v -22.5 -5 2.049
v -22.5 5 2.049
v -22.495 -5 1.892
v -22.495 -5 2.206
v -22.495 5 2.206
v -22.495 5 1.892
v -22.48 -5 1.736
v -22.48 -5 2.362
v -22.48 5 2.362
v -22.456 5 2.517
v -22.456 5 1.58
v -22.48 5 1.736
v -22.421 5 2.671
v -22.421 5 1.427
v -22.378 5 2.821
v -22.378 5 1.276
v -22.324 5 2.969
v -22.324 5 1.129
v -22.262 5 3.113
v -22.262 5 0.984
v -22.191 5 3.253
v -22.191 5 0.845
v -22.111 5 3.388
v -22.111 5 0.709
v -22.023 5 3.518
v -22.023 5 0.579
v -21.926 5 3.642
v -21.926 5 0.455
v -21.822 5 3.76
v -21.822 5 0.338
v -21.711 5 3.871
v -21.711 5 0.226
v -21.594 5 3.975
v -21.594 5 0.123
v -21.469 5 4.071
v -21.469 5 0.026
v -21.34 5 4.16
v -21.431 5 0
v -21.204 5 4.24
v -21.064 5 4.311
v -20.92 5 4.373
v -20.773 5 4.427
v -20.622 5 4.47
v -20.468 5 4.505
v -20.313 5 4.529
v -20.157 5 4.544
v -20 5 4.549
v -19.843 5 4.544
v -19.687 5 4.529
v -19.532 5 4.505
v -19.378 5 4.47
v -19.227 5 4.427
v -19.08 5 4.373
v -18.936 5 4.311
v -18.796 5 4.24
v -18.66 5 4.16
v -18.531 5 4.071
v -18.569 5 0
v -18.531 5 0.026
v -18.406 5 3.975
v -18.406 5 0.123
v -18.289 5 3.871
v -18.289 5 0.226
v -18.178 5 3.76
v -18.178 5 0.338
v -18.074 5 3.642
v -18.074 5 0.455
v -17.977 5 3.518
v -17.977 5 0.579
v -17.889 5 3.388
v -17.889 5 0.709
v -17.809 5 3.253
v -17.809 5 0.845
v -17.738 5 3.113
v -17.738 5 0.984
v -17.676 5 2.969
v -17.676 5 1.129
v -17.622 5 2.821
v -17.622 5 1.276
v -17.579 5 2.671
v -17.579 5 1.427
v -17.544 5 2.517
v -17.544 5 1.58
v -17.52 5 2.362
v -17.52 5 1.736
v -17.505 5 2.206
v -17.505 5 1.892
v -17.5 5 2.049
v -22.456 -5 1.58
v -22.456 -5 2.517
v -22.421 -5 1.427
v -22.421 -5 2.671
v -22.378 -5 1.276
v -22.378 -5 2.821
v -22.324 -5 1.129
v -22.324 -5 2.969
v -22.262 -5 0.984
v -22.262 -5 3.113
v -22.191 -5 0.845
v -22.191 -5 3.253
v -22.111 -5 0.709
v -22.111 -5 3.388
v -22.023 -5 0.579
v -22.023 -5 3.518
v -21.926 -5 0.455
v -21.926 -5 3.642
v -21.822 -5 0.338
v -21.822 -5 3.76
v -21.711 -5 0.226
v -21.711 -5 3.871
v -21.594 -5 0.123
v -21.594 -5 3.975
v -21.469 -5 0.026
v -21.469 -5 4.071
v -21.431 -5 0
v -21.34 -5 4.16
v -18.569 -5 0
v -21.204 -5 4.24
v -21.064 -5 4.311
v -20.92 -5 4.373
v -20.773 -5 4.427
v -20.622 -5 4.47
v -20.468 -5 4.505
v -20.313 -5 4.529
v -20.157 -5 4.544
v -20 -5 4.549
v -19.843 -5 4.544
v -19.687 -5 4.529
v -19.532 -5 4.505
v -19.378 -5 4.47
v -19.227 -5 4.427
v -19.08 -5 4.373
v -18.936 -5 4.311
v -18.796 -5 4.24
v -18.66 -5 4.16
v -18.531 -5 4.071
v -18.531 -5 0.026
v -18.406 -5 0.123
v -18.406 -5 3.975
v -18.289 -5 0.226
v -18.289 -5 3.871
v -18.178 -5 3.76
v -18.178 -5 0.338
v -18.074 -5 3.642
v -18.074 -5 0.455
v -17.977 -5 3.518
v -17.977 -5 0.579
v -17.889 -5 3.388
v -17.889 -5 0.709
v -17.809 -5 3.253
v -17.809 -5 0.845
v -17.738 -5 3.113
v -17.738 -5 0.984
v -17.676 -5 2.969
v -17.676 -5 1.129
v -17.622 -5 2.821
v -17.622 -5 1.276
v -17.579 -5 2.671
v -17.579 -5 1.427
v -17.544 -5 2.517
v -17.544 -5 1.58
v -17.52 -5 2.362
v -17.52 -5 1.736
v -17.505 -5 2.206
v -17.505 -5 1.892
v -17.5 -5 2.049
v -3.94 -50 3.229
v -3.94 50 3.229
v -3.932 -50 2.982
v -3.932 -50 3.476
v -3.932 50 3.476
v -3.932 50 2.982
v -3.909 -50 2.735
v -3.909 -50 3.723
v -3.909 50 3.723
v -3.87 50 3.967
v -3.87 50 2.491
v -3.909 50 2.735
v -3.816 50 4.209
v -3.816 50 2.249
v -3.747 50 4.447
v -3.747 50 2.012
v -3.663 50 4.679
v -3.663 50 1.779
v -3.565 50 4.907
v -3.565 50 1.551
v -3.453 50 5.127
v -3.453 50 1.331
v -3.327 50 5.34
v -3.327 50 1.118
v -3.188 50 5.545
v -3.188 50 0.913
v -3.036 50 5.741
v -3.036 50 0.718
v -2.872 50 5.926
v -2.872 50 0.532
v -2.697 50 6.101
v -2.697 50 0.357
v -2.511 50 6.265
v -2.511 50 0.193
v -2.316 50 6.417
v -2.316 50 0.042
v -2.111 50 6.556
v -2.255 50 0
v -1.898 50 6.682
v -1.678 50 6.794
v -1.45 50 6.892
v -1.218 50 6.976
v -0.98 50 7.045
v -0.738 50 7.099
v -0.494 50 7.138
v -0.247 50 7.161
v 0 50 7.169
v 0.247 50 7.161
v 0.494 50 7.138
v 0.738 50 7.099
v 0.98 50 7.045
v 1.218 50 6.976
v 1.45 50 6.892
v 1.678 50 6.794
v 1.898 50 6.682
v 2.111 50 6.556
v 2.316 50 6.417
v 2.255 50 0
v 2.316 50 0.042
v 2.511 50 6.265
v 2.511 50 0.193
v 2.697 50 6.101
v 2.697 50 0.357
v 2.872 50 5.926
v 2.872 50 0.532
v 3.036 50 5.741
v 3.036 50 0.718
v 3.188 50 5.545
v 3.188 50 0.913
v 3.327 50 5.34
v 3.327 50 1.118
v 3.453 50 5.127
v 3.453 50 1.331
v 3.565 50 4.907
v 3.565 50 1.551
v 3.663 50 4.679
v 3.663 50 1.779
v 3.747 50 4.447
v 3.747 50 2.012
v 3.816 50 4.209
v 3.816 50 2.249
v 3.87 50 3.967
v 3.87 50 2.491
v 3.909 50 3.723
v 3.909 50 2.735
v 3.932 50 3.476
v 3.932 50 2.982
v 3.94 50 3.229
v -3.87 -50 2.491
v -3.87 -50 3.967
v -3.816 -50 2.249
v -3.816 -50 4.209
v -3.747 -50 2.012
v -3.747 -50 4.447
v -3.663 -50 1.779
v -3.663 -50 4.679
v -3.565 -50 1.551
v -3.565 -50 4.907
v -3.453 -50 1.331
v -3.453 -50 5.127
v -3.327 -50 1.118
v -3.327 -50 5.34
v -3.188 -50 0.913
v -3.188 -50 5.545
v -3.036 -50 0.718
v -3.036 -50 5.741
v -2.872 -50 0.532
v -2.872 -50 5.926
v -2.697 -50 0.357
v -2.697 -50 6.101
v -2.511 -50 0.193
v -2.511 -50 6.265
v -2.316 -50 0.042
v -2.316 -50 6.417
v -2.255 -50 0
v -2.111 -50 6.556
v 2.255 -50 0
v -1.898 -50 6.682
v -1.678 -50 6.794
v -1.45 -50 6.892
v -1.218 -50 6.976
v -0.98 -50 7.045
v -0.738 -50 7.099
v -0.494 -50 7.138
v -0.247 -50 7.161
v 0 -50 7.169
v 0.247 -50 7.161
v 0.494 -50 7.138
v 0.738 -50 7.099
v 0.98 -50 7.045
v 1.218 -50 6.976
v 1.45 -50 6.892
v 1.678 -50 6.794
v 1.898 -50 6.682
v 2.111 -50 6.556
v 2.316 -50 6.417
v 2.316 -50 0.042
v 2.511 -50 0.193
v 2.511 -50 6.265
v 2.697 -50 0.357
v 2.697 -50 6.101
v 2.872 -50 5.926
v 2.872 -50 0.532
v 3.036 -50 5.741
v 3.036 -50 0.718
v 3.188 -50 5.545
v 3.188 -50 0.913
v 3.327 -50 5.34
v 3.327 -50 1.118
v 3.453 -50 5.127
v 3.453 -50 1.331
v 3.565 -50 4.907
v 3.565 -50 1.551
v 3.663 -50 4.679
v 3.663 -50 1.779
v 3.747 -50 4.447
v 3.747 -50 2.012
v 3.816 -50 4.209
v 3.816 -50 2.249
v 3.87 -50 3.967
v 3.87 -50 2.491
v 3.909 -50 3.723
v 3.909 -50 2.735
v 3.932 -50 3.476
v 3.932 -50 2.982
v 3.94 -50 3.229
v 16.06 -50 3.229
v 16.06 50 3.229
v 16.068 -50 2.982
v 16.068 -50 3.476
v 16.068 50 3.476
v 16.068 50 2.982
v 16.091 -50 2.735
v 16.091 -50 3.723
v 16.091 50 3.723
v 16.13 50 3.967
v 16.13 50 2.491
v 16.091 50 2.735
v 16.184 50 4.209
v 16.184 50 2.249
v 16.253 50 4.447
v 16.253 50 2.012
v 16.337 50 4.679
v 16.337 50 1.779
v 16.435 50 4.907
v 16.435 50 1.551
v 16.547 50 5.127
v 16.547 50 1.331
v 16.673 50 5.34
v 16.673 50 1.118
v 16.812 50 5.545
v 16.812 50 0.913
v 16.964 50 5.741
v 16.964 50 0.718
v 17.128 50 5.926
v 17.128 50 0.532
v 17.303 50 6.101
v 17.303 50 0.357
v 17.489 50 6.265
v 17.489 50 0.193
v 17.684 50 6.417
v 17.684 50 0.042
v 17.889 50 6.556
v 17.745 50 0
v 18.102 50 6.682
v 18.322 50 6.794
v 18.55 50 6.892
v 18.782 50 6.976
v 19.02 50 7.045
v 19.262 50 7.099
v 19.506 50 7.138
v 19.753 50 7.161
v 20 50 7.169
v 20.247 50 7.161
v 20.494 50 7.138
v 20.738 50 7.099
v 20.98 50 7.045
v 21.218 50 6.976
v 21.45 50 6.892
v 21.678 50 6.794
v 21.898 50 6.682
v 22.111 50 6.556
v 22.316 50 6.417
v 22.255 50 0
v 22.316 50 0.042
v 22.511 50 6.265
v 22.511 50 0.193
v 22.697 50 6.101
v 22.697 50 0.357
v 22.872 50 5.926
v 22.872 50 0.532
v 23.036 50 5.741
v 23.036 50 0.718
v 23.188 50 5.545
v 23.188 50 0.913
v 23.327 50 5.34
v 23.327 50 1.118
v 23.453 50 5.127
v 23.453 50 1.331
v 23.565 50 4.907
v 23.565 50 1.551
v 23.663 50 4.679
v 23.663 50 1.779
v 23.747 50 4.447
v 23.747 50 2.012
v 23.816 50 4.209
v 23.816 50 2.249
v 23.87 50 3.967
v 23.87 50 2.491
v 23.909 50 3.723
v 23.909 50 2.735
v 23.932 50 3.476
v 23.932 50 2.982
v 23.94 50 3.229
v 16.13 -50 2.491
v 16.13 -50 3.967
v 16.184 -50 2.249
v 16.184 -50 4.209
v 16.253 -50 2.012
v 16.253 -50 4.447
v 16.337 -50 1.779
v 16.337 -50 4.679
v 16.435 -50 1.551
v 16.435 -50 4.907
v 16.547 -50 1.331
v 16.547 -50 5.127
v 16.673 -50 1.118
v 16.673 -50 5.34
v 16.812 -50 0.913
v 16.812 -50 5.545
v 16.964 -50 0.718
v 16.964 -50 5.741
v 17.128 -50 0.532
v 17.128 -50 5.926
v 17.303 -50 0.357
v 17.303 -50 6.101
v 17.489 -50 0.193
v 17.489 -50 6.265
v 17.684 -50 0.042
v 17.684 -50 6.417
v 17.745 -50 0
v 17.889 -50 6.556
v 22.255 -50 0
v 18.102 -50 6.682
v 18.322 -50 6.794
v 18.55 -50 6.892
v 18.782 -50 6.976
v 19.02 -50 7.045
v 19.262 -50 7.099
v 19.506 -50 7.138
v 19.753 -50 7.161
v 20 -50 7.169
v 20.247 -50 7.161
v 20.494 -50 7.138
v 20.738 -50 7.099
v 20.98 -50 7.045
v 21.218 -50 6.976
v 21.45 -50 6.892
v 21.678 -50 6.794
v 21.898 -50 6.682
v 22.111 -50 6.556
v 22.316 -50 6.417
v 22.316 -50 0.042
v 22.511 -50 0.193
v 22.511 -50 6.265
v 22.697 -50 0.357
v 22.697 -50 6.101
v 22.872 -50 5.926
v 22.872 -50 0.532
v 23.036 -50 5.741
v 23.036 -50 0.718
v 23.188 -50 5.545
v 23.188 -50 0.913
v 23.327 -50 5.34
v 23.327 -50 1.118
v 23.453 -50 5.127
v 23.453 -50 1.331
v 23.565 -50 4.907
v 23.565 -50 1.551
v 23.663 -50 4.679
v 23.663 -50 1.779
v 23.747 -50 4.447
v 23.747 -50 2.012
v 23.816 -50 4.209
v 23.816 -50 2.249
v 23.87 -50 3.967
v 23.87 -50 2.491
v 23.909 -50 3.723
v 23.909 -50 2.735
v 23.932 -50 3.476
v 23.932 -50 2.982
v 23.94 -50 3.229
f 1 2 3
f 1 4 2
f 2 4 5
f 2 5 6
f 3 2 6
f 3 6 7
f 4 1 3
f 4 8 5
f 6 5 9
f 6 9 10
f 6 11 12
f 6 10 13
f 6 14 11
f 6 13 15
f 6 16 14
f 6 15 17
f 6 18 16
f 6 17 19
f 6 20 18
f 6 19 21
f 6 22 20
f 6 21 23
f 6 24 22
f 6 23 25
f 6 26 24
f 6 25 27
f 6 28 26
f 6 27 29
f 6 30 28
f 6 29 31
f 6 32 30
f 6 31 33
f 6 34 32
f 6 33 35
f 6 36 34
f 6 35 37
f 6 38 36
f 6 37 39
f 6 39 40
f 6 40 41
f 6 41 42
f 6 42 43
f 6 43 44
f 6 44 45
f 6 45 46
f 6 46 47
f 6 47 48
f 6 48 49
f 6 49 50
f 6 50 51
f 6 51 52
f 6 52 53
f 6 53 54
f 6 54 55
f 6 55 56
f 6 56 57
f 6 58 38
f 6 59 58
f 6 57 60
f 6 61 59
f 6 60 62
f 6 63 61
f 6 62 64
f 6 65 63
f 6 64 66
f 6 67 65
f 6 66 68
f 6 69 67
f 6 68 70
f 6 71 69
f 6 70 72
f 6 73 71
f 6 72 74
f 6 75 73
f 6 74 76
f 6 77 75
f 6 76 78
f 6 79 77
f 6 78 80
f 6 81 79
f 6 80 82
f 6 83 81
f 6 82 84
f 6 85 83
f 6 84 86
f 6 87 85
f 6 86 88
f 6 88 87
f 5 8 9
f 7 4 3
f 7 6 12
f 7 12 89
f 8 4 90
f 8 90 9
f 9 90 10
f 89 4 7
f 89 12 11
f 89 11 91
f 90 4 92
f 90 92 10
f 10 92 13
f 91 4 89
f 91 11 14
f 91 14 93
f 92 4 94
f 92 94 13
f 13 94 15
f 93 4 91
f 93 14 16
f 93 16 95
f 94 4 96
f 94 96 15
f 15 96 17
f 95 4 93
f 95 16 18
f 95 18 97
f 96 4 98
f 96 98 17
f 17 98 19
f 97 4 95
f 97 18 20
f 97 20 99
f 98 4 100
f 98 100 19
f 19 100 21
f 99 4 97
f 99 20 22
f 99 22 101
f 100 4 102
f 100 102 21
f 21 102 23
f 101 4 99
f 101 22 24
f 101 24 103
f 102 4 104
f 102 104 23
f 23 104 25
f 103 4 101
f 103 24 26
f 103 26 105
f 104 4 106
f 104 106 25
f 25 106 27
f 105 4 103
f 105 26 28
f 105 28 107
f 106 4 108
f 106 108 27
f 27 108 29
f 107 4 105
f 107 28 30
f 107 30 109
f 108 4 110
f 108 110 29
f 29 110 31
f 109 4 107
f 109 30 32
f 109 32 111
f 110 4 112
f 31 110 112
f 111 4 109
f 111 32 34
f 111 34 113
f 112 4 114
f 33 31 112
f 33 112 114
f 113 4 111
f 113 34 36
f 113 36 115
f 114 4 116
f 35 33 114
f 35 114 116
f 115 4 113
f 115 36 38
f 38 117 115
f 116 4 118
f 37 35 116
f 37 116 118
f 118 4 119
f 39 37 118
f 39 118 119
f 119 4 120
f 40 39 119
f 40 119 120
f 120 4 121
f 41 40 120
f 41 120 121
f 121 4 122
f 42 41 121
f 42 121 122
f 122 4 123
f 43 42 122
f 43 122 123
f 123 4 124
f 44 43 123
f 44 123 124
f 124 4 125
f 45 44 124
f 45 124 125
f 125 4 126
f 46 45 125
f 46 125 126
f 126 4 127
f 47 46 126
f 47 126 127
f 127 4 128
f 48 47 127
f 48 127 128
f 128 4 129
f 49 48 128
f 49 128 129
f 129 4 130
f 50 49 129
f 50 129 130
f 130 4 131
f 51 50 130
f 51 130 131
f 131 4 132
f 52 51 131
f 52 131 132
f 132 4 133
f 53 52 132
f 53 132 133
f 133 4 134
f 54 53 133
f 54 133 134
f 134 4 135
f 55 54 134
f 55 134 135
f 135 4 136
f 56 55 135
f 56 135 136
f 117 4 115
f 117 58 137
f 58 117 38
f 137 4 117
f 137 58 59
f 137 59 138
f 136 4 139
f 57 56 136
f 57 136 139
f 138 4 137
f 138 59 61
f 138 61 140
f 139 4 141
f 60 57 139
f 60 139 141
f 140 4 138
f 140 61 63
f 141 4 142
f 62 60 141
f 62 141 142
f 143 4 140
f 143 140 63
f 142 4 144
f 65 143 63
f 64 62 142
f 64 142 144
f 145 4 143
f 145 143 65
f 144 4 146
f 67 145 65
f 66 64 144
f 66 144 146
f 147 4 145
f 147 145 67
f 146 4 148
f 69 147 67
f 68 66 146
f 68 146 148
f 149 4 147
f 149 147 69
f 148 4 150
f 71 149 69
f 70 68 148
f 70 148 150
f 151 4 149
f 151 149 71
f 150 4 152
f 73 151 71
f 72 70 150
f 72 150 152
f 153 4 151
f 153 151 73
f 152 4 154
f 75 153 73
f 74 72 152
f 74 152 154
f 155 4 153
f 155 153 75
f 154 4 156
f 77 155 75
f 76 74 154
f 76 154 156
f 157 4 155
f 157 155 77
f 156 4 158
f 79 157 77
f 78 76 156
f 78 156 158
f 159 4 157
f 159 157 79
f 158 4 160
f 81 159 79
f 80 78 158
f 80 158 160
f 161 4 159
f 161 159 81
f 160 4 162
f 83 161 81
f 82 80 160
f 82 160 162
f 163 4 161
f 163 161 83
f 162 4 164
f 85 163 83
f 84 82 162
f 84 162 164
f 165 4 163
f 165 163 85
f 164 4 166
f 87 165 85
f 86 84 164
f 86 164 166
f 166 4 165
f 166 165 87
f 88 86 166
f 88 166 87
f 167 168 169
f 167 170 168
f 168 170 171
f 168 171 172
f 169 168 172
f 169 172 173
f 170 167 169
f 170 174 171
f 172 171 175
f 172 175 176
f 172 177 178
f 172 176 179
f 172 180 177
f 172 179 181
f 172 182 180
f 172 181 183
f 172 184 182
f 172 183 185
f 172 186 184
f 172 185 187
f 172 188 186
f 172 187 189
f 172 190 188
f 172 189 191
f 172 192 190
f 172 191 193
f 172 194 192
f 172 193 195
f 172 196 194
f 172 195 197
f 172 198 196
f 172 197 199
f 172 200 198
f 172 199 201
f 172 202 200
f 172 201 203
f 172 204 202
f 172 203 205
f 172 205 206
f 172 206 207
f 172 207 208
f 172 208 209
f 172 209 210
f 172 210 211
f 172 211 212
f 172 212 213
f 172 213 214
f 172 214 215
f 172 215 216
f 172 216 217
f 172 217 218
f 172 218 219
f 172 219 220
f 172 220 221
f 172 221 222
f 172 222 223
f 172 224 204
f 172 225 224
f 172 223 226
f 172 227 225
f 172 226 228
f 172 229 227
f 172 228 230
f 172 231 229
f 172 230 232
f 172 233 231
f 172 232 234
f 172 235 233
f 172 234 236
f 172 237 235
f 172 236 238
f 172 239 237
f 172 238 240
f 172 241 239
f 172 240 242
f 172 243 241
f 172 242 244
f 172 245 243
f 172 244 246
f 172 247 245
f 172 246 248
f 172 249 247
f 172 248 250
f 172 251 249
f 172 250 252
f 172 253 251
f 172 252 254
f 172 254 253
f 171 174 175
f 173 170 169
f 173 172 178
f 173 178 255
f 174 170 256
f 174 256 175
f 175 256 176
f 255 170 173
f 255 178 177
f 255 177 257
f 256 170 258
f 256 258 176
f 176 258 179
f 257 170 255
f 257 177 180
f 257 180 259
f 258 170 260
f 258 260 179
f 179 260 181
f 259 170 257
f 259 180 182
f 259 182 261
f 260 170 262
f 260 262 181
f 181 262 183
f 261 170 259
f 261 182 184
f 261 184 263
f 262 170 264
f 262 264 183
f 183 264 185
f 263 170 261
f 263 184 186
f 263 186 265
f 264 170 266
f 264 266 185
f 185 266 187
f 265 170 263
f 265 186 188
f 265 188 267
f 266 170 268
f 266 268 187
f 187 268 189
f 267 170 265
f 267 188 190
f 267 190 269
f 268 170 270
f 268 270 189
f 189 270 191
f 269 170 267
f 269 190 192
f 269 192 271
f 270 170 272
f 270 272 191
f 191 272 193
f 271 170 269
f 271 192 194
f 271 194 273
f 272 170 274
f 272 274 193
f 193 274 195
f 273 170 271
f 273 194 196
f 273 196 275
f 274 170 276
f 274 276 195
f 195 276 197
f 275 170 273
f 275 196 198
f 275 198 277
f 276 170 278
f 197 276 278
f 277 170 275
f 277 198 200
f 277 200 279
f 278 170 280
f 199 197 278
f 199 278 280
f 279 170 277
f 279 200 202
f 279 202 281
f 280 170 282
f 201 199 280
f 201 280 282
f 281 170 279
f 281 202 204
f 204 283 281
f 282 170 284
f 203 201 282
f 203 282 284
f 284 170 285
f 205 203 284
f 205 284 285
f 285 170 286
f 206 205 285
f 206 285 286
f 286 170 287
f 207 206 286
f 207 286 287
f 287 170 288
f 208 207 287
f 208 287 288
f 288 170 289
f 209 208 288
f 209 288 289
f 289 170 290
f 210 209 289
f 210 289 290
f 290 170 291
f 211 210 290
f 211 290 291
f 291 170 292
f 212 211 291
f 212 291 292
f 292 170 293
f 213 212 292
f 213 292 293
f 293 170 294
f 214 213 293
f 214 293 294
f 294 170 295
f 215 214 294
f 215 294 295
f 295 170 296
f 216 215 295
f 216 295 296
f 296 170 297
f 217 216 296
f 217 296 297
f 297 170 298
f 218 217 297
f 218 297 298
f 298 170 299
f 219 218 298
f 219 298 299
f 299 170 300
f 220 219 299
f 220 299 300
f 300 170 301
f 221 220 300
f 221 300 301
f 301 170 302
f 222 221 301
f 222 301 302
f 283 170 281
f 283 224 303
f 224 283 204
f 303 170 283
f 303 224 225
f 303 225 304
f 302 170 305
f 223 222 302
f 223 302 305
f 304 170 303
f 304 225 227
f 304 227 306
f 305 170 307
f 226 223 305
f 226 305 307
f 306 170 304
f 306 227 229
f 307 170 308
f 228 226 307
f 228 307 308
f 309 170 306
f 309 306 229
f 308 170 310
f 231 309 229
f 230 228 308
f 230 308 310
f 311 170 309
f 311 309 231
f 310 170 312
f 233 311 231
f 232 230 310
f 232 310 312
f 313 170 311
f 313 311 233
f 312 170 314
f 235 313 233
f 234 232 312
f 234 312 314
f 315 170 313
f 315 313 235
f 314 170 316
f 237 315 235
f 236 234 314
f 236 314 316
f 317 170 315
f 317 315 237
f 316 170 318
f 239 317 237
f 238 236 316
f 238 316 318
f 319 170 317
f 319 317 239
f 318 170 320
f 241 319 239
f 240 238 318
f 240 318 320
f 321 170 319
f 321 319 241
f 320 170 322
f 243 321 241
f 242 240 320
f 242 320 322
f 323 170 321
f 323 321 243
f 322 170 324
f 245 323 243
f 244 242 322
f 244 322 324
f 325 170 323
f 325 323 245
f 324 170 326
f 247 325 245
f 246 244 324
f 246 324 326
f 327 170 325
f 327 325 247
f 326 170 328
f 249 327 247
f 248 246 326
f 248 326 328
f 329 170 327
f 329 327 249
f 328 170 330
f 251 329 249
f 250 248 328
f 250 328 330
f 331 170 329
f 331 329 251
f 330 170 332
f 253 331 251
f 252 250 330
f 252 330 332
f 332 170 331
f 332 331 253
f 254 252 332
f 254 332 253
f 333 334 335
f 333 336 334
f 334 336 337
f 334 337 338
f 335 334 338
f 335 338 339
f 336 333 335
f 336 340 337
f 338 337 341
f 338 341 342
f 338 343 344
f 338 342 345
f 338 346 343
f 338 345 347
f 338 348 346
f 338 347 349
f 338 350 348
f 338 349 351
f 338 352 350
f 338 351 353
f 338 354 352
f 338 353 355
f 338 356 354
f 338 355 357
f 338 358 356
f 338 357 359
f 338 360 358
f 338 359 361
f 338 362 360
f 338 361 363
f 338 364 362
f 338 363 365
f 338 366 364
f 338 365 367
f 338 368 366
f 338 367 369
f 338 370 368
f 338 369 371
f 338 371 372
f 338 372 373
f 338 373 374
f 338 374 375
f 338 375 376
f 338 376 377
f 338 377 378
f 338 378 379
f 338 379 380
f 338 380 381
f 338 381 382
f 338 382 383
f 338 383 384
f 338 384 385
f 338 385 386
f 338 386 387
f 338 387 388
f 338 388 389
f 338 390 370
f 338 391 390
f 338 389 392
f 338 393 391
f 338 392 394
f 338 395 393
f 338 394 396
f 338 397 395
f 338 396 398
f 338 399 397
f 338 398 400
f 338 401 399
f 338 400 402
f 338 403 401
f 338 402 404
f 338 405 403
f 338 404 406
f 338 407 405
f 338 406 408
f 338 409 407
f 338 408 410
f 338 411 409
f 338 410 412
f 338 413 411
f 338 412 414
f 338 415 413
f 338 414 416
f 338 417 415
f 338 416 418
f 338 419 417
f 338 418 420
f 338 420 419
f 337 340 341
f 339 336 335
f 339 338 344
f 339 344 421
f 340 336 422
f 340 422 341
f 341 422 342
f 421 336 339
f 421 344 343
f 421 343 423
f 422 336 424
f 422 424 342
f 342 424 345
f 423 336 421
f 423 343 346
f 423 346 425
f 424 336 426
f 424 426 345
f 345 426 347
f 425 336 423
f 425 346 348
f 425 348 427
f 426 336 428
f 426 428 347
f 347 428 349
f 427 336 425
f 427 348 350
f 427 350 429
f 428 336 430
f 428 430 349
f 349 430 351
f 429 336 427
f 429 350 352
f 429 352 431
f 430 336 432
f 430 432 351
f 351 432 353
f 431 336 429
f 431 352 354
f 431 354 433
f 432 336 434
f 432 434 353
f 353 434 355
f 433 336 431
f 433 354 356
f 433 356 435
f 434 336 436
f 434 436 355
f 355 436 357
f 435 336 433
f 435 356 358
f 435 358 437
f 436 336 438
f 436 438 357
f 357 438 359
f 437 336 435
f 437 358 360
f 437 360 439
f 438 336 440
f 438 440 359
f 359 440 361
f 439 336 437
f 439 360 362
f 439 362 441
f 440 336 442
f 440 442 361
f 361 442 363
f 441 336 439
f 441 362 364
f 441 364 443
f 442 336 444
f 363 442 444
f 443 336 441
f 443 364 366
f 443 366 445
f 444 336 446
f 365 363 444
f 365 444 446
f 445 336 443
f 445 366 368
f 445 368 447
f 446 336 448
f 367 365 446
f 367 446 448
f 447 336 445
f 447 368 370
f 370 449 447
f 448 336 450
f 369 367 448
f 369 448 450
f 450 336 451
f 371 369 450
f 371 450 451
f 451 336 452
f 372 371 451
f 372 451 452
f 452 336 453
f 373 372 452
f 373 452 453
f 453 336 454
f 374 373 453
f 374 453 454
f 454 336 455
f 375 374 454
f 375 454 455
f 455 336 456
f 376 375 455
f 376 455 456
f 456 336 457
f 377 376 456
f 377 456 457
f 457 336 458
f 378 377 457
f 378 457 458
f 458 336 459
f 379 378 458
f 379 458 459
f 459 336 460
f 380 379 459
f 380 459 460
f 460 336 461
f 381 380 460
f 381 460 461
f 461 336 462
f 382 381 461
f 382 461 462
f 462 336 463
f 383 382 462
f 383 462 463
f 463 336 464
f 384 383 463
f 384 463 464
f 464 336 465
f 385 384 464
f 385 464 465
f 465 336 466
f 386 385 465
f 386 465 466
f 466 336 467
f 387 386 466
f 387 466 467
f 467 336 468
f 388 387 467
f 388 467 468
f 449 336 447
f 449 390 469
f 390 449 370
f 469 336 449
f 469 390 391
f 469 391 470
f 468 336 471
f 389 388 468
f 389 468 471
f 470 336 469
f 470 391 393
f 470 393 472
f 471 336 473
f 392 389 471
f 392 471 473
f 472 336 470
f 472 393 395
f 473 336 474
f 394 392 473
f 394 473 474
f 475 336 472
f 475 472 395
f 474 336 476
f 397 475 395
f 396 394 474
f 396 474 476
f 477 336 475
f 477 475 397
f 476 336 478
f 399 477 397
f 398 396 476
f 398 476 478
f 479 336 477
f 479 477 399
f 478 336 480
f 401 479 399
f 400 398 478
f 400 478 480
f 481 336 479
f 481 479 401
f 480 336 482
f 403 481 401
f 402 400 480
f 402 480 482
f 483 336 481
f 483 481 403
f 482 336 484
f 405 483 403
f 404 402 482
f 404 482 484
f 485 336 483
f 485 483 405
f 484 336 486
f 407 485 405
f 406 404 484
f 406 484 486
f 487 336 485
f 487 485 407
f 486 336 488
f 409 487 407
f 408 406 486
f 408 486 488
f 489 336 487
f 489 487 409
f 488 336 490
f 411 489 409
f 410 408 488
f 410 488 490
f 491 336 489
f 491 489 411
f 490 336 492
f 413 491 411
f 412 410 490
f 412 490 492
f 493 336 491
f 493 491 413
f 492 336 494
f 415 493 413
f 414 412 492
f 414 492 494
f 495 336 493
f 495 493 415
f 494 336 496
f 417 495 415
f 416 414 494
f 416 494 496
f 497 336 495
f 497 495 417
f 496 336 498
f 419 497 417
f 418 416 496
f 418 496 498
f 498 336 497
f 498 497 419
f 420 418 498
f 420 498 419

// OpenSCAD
include <BOSL/constants.scad>
use <BOSL/transforms.scad>
use <BOSL/metric_screws.scad>
use <BOSL/shapes.scad>
use <BOSLext/shapes.scad>

$fn=100;

l=30;
s=3;
shank=l-8;

xdistribute(20) {
  dcyl(h=10,d=5,oh_ang=55,circum=true,lay_flat=true);
  dcyl(h=100,d=7.88,oh_ang=55,circum=true,lay_flat=true);
  dcyl(h=100,d=7.88,oh_ang=55,circum=true,lay_flat=true);
}
*cut_screw();

module cut_screw() {
  difference() {
    zmove(s*(1-cos(55))) xrot(-90) metric_bolt(size=s,l=l,shank=shank);
    downcube([get_metric_bolt_head_size(s),l*2,get_metric_bolt_head_size(s)]);
  }
}
